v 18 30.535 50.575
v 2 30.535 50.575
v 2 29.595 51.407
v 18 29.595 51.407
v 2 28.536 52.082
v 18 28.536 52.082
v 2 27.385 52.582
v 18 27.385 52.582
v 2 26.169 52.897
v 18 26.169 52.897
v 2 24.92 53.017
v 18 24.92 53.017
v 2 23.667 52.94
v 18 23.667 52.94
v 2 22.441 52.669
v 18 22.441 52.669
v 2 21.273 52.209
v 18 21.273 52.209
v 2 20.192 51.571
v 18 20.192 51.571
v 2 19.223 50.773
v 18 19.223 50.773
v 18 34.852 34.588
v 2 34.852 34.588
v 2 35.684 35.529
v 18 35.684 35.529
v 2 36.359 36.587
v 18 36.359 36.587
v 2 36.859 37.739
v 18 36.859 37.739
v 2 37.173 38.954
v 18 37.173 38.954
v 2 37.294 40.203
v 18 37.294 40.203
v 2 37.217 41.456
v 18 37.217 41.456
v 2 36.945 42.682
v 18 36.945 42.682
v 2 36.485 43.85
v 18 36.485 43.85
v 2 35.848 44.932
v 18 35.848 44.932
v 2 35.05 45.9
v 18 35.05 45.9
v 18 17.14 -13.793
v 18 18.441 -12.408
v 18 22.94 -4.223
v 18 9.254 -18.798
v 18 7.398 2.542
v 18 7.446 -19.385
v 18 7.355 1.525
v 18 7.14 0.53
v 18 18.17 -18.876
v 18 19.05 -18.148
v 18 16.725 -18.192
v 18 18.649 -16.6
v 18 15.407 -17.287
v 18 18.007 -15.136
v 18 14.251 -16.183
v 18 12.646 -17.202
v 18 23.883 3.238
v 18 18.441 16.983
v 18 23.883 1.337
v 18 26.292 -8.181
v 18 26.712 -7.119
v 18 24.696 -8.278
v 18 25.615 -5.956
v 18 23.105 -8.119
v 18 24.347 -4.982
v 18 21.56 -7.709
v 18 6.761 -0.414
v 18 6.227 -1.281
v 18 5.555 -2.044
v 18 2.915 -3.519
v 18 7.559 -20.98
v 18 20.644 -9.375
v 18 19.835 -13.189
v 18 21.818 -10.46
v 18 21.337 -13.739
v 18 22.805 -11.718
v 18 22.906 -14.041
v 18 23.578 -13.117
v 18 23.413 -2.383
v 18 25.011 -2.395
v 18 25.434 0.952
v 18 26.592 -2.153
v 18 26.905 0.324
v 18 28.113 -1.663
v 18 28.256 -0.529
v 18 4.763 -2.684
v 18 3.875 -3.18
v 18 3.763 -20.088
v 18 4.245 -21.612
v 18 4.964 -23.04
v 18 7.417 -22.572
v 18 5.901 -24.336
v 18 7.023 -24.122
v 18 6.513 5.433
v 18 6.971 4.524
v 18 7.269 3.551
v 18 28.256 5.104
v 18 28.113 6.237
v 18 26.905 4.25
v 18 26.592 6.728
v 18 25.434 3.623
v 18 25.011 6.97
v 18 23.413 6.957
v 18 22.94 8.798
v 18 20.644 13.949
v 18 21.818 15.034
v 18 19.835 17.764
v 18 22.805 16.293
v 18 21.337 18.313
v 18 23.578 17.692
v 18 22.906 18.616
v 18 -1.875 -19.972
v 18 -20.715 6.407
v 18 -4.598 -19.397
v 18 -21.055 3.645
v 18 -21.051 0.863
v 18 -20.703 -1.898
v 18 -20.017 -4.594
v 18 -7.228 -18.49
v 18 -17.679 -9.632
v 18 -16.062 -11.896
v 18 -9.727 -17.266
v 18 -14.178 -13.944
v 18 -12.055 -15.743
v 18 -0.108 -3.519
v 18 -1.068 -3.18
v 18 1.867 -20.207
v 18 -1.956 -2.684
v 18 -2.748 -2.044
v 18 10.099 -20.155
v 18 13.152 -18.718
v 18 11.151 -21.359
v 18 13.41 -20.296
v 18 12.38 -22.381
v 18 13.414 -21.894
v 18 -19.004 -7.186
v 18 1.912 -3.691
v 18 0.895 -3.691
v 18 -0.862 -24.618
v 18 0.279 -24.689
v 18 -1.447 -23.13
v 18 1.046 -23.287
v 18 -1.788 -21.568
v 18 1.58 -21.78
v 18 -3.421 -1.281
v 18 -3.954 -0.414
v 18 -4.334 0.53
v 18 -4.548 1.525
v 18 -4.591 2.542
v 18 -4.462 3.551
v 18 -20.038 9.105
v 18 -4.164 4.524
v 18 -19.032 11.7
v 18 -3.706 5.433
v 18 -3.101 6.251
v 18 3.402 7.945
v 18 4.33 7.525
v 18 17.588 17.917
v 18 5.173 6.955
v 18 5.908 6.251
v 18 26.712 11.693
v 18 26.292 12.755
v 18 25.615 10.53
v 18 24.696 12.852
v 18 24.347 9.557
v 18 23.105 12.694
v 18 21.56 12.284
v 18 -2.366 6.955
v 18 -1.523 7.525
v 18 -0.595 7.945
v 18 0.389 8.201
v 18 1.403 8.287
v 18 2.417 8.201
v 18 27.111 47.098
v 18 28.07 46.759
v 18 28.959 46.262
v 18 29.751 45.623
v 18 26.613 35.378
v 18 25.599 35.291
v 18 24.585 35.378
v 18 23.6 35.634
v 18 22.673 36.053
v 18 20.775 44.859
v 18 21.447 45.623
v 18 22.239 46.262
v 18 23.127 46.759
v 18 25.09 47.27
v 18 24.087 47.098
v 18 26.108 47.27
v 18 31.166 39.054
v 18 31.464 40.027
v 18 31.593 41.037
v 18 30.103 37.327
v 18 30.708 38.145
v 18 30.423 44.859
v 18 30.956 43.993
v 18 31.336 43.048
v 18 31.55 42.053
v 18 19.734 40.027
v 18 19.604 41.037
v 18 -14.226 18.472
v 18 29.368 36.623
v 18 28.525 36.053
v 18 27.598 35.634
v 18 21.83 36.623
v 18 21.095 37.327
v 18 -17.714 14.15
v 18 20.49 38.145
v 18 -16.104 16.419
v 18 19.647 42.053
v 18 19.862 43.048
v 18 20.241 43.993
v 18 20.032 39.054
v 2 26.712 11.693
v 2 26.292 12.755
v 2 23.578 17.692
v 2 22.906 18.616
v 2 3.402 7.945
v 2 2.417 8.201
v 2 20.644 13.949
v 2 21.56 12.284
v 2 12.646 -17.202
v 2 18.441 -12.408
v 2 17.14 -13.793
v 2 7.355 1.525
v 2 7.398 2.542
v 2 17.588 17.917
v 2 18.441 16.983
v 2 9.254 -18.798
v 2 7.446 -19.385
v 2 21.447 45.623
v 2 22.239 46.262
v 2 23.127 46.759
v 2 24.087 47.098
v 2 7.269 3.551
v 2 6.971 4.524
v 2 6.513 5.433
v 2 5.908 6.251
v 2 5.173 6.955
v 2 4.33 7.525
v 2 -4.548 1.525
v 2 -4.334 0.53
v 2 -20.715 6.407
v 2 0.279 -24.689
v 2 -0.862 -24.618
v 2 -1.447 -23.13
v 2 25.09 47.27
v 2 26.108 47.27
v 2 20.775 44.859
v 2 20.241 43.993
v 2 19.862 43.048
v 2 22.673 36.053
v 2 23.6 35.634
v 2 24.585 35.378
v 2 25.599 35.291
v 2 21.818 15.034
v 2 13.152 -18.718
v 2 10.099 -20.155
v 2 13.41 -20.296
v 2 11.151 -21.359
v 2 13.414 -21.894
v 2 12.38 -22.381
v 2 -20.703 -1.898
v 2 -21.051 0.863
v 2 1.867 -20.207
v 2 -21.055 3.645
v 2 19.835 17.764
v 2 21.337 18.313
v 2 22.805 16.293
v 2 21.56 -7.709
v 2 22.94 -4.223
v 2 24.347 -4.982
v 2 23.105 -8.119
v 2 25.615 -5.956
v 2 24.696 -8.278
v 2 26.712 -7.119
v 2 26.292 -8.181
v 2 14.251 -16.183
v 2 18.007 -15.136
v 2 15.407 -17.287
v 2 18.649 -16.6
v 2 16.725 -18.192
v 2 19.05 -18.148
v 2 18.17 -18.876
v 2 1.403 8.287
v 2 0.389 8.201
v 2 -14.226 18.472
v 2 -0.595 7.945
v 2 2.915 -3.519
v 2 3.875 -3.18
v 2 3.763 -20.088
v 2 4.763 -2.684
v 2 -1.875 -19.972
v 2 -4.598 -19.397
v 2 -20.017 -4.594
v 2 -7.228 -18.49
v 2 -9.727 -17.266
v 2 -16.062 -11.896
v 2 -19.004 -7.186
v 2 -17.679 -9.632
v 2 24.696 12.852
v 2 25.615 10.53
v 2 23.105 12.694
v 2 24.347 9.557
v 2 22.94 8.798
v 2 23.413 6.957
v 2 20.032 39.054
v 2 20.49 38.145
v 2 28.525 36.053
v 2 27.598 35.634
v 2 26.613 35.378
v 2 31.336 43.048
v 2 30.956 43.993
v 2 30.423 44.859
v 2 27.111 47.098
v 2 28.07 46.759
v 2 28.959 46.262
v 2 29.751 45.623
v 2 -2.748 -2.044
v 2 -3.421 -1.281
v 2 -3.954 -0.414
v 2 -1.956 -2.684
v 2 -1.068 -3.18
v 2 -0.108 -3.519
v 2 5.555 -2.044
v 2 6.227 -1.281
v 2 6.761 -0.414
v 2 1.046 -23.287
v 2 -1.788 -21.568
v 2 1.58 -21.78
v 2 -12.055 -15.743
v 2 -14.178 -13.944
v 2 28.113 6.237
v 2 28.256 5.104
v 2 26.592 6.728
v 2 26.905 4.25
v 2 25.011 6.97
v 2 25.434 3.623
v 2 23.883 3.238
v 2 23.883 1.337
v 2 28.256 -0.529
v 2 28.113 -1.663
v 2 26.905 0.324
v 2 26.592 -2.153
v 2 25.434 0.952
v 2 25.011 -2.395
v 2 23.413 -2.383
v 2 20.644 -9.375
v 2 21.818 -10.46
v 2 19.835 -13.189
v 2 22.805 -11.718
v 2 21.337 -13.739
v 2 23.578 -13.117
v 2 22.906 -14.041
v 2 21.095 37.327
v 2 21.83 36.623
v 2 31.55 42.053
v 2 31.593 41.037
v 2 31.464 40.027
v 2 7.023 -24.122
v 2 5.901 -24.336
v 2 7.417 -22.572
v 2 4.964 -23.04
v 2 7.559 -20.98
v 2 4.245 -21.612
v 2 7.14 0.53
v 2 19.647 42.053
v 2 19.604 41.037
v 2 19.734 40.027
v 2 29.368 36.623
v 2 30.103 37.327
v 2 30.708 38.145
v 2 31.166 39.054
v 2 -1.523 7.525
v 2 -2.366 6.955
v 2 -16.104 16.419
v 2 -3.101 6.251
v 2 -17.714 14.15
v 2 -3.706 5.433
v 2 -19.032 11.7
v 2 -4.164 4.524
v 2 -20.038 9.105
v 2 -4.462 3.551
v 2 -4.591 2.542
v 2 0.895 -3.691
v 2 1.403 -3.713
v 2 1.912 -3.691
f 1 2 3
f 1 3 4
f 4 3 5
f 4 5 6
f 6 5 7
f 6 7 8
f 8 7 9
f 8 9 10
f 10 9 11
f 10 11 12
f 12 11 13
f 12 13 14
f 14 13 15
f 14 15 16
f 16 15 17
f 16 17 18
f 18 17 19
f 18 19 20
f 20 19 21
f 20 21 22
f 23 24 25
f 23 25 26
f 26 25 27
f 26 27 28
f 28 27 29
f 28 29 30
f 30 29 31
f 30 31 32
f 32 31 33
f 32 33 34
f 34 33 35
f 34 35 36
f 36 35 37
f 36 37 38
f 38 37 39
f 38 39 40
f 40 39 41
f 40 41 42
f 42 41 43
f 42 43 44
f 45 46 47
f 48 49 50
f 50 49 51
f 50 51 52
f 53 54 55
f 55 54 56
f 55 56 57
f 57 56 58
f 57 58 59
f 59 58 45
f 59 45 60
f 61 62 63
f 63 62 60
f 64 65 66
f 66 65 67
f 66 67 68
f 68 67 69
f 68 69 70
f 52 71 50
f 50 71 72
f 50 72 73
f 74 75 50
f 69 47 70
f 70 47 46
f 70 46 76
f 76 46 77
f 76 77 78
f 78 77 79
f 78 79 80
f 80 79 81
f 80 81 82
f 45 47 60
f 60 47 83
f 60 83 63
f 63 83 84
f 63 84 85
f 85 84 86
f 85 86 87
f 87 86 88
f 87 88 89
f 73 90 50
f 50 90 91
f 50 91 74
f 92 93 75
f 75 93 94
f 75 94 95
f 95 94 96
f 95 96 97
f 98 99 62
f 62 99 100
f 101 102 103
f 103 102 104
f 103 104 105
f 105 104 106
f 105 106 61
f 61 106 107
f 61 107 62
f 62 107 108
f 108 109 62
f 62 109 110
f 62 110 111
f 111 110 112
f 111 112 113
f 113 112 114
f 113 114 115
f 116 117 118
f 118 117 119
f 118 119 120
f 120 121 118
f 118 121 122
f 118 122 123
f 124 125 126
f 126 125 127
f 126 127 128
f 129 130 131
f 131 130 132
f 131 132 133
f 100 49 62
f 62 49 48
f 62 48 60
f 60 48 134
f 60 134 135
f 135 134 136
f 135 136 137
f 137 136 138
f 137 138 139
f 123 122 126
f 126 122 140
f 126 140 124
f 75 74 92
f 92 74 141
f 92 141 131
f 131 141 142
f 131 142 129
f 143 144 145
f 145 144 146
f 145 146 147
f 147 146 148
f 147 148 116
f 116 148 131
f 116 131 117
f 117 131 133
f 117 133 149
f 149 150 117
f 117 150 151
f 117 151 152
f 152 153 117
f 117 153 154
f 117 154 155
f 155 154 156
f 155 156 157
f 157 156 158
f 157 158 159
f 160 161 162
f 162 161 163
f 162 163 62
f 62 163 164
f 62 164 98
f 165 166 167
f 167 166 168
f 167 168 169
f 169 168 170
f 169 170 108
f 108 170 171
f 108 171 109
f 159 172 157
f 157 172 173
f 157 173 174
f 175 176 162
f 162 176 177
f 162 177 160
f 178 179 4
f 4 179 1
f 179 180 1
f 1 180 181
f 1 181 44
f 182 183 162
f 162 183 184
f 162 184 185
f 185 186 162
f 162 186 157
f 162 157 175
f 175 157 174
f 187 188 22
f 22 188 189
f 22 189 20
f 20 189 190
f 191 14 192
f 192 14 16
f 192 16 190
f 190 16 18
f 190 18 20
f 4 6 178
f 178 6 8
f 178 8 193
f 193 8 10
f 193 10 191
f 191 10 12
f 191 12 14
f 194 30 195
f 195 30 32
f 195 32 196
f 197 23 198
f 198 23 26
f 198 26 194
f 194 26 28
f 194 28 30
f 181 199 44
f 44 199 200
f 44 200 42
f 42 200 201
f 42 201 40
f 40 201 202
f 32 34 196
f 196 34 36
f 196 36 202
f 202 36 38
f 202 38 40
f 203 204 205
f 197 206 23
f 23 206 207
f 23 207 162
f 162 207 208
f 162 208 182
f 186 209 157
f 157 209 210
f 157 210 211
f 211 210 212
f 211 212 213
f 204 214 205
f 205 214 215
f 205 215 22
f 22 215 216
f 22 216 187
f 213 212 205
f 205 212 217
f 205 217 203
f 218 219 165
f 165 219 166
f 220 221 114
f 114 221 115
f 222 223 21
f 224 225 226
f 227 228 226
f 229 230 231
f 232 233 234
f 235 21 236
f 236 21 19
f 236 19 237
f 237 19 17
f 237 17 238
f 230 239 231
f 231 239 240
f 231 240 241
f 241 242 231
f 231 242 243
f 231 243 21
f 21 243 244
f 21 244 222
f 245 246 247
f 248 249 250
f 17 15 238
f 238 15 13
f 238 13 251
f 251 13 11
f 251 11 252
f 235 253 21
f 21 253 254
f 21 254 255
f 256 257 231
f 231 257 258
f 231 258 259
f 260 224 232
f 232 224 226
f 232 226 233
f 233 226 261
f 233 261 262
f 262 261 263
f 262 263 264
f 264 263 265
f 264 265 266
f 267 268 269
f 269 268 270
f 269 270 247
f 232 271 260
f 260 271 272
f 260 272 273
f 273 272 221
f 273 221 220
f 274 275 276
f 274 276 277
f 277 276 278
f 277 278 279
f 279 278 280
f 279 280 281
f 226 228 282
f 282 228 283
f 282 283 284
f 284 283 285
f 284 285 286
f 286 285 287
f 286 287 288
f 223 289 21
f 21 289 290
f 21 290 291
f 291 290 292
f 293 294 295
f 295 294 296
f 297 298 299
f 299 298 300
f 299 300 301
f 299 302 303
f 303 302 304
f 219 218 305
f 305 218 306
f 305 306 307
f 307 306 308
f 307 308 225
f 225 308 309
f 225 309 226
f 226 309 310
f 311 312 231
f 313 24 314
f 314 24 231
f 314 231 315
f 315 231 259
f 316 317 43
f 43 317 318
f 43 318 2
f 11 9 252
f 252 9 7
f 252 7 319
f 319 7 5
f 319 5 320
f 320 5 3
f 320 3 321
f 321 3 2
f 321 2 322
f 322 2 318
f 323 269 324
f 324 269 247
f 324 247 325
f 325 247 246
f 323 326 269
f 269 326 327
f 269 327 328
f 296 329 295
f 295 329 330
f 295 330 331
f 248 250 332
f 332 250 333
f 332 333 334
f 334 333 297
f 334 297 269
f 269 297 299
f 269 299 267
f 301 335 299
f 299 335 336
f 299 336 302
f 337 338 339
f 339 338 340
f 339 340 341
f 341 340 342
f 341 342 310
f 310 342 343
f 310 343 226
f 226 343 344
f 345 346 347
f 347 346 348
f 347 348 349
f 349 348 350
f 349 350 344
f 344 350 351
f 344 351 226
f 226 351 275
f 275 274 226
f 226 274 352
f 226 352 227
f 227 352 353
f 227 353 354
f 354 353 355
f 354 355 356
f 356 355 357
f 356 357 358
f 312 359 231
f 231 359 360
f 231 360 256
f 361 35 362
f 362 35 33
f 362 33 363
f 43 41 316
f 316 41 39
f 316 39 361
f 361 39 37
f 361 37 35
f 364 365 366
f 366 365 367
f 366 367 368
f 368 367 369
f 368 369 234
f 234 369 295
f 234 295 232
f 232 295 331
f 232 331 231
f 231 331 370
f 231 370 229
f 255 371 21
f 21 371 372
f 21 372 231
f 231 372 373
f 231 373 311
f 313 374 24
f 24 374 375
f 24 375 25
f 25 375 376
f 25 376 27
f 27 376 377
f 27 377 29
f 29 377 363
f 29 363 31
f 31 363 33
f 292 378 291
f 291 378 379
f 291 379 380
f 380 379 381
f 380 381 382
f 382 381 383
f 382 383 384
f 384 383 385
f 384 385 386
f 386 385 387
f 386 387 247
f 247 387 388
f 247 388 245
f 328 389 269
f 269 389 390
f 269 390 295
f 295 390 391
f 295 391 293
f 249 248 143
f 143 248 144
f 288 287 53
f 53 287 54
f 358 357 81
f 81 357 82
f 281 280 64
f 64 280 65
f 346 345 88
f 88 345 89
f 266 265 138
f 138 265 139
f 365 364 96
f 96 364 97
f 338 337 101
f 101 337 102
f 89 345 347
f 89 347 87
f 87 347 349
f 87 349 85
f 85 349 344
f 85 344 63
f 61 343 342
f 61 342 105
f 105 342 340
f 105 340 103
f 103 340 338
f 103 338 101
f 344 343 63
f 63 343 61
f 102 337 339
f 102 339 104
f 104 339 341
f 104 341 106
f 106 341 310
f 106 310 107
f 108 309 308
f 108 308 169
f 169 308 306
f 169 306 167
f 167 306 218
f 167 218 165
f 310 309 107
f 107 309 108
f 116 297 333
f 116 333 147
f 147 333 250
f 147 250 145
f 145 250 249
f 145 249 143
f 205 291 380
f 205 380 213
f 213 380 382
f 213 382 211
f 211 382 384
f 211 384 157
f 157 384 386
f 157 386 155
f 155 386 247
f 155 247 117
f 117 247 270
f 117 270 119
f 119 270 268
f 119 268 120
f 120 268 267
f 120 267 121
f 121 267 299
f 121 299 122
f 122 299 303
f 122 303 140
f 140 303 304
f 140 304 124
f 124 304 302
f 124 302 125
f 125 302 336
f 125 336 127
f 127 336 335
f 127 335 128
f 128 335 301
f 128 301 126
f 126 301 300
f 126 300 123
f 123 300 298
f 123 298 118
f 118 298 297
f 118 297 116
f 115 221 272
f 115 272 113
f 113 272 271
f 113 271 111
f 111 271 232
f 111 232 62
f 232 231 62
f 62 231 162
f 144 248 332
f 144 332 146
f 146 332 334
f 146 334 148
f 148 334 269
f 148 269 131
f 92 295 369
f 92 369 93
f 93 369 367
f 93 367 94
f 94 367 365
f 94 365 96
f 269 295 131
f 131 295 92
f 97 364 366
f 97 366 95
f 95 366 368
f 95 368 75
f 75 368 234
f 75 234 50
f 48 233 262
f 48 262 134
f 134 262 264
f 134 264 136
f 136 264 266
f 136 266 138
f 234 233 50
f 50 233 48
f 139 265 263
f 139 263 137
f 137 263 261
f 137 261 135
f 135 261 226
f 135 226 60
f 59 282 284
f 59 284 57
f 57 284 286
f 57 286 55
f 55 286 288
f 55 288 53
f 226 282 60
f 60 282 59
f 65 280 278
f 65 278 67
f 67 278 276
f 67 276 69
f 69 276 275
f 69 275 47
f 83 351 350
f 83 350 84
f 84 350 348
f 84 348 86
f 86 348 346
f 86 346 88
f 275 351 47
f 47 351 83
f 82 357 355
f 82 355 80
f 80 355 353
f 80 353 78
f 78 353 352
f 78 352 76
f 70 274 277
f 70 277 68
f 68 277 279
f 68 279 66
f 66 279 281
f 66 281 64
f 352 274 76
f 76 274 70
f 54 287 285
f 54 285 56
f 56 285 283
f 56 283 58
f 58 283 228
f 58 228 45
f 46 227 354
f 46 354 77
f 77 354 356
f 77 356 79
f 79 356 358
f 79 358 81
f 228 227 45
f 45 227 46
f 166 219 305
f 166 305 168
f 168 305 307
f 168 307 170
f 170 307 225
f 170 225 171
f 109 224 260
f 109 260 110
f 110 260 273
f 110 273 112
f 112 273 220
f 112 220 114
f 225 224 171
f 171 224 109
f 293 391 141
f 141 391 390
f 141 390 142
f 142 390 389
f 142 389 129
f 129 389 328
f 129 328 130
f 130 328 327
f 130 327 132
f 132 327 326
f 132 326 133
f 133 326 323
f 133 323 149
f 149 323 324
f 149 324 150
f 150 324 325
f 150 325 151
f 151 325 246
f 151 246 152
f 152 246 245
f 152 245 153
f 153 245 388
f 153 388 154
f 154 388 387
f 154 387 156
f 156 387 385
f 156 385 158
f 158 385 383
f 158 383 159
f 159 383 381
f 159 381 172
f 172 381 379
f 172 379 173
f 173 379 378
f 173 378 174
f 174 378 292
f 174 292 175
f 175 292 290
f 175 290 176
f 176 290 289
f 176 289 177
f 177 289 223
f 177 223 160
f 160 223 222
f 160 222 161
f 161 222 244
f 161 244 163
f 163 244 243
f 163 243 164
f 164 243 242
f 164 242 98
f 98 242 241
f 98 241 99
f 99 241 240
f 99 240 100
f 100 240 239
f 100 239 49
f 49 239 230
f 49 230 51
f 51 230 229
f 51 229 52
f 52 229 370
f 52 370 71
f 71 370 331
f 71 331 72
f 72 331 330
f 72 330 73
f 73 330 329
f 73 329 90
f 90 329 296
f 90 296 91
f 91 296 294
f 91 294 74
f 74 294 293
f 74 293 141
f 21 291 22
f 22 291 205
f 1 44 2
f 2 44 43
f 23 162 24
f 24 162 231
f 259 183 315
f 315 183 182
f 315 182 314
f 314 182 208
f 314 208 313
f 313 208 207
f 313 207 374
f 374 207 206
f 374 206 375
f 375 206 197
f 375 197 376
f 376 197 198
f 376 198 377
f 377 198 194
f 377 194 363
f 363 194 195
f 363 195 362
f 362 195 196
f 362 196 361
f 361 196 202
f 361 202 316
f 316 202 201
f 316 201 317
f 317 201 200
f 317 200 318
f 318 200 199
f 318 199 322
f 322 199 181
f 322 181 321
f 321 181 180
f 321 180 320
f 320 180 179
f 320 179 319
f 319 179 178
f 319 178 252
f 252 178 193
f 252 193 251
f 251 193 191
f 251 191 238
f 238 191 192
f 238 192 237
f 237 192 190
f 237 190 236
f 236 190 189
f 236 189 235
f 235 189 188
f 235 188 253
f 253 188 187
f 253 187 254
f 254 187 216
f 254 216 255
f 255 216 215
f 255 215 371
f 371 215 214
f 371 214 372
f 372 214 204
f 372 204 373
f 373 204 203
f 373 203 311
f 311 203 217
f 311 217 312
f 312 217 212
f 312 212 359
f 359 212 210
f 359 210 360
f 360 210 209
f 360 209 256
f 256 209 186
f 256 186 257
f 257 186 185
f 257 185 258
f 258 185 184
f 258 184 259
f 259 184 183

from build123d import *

# Parameters (mm, degrees)
BASPROSKE_W                  = 20
BASPROSKE_H                  = 33.75
BASE_REVOLVE_ANGLE           = 134
BASE_REVOLVE_OTHER_WAY_ANGLE = 11
TOOTHCUT_DEPTH               = 52.750603861
TEETHCUTS_COUNT              = 25
TEETHCUTS_ANGLE              = 345.6
BORSKE_R                     = 7.5
BORE_DEPTH                   = 50.000508
BOSS_EXTRUDE1_DEPTH          = 20
SKETCH5_R                    = 7.5
CUT_EXTRUDE1_DEPTH           = 20
FILLET1_R                    = 10
FILLET2_R                    = 10
SCALE1_SCALE                 = 0.8


with BuildPart() as part:
    # BasProSke → Base-Revolve (revolve)
    with BuildSketch(Plane(origin=(0, 0, 0), x_dir=(1, 0, 0), z_dir=(0, 1, 0))):
        with Locations((10, 16.875)):
            Rectangle(BASPROSKE_W, BASPROSKE_H)
    revolve(axis=Axis((-10, 0, 0), (1, 0, 0)), revolution_arc=BASE_REVOLVE_ANGLE)

    # BasProSke → Base-Revolve other way (revolve)
    with BuildSketch(Plane(origin=(0, 0, 0), x_dir=(1, 0, 0), z_dir=(0, 1, 0))):
        with Locations((10, 16.875)):
            Rectangle(BASPROSKE_W, BASPROSKE_H)
    revolve(axis=Axis((-10, 0, 0), (-1, 0, 0)), revolution_arc=BASE_REVOLVE_OTHER_WAY_ANGLE)

    # TooCutSke → ToothCut (cut, through all)
    with BuildSketch(Plane(origin=(0, 0, 0), x_dir=(0, 0, -1), z_dir=(1, 0, 0))):
        with BuildLine():
            ThreePointArc((1.187856988, 28.098903391), (0, 28.124), (-1.187856988, 28.098903391))
            ThreePointArc((-1.187856988, 28.098903391), (-2.083835169, 31.109603364), (-3.702102288, 33.801870579))
            ThreePointArc((-3.702102288, 33.801870579), (0, 34.004), (3.702102288, 33.801870579))
            ThreePointArc((3.702102288, 33.801870579), (2.083835169, 31.109603364), (1.187856988, 28.098903391))
        make_face()
    toothcut = extrude(amount=TOOTHCUT_DEPTH, mode=Mode.SUBTRACT)

    # TeethCuts: ToothCut ×25 about axis
    teethcuts_axis = Axis((-10, 0, 0), (1, 0, 0))
    for i in range(1, TEETHCUTS_COUNT):
        add(toothcut.rotate(teethcuts_axis, i * TEETHCUTS_ANGLE / (TEETHCUTS_COUNT - 1)), mode=Mode.SUBTRACT)

    # BorSke → Bore (cut, symmetric)
    with BuildSketch(Plane(origin=(0, 0, 0), x_dir=(0, 0, -1), z_dir=(1, 0, 0))):
        Circle(BORSKE_R)
    extrude(amount=BORE_DEPTH, both=True, mode=Mode.SUBTRACT)

    # Sketch4 → Boss-Extrude1 (add)
    with BuildSketch(Plane(origin=(20, 0, 0), x_dir=(0, 0, -1), z_dir=(1, 0, 0))):
        with BuildLine():
            Line((-67.553619374, 29.467732547), (-20.230712545, -19.536572011))
            ThreePointArc((-20.230712545, -19.536572011), (7.987647554, -26.965846223), (27.607282907, -5.366312186))
            Line((27.607282907, -5.366312186), (7.362203876, -1.431067465))
            ThreePointArc((7.362203876, -1.431067465), (-3.578690702, -6.591128345), (-5.209937778, 5.395048503))
            Line((-5.209937778, 5.395048503), (-47.322906829, 49.004304558))
            Line((-47.322906829, 49.004304558), (-67.553619374, 29.467732547))
        make_face()
    extrude(amount=-BOSS_EXTRUDE1_DEPTH)

    # Sketch5 → Cut-Extrude1 (cut)
    with BuildSketch(Plane(origin=(20, 0, 0), x_dir=(0, 0, -1), z_dir=(1, 0, 0))):
        with Locations((-48.755033471, 30.244271049)):
            Circle(SKETCH5_R)
    extrude(amount=-CUT_EXTRUDE1_DEPTH, mode=Mode.SUBTRACT)

    # Fillet1
    fillet1_edges = [part.edges().sort_by_distance(p)[0] for p in [
        (10, 49.004304558, 47.322906829),
    ]]
    fillet(fillet1_edges, radius=FILLET1_R)

    # Fillet2
    fillet2_edges = [part.edges().sort_by_distance(p)[0] for p in [
        (10, 29.467732547, 67.553619374),
    ]]
    fillet(fillet2_edges, radius=FILLET2_R)


with BuildPart() as part_1:
    # Scale1: scaled about (10, 7.017353876, 11.436425522)
    add(part.part.scale(SCALE1_SCALE).moved(Location((2, 1.403470775, 2.287285104))))


solid = part_1.part
